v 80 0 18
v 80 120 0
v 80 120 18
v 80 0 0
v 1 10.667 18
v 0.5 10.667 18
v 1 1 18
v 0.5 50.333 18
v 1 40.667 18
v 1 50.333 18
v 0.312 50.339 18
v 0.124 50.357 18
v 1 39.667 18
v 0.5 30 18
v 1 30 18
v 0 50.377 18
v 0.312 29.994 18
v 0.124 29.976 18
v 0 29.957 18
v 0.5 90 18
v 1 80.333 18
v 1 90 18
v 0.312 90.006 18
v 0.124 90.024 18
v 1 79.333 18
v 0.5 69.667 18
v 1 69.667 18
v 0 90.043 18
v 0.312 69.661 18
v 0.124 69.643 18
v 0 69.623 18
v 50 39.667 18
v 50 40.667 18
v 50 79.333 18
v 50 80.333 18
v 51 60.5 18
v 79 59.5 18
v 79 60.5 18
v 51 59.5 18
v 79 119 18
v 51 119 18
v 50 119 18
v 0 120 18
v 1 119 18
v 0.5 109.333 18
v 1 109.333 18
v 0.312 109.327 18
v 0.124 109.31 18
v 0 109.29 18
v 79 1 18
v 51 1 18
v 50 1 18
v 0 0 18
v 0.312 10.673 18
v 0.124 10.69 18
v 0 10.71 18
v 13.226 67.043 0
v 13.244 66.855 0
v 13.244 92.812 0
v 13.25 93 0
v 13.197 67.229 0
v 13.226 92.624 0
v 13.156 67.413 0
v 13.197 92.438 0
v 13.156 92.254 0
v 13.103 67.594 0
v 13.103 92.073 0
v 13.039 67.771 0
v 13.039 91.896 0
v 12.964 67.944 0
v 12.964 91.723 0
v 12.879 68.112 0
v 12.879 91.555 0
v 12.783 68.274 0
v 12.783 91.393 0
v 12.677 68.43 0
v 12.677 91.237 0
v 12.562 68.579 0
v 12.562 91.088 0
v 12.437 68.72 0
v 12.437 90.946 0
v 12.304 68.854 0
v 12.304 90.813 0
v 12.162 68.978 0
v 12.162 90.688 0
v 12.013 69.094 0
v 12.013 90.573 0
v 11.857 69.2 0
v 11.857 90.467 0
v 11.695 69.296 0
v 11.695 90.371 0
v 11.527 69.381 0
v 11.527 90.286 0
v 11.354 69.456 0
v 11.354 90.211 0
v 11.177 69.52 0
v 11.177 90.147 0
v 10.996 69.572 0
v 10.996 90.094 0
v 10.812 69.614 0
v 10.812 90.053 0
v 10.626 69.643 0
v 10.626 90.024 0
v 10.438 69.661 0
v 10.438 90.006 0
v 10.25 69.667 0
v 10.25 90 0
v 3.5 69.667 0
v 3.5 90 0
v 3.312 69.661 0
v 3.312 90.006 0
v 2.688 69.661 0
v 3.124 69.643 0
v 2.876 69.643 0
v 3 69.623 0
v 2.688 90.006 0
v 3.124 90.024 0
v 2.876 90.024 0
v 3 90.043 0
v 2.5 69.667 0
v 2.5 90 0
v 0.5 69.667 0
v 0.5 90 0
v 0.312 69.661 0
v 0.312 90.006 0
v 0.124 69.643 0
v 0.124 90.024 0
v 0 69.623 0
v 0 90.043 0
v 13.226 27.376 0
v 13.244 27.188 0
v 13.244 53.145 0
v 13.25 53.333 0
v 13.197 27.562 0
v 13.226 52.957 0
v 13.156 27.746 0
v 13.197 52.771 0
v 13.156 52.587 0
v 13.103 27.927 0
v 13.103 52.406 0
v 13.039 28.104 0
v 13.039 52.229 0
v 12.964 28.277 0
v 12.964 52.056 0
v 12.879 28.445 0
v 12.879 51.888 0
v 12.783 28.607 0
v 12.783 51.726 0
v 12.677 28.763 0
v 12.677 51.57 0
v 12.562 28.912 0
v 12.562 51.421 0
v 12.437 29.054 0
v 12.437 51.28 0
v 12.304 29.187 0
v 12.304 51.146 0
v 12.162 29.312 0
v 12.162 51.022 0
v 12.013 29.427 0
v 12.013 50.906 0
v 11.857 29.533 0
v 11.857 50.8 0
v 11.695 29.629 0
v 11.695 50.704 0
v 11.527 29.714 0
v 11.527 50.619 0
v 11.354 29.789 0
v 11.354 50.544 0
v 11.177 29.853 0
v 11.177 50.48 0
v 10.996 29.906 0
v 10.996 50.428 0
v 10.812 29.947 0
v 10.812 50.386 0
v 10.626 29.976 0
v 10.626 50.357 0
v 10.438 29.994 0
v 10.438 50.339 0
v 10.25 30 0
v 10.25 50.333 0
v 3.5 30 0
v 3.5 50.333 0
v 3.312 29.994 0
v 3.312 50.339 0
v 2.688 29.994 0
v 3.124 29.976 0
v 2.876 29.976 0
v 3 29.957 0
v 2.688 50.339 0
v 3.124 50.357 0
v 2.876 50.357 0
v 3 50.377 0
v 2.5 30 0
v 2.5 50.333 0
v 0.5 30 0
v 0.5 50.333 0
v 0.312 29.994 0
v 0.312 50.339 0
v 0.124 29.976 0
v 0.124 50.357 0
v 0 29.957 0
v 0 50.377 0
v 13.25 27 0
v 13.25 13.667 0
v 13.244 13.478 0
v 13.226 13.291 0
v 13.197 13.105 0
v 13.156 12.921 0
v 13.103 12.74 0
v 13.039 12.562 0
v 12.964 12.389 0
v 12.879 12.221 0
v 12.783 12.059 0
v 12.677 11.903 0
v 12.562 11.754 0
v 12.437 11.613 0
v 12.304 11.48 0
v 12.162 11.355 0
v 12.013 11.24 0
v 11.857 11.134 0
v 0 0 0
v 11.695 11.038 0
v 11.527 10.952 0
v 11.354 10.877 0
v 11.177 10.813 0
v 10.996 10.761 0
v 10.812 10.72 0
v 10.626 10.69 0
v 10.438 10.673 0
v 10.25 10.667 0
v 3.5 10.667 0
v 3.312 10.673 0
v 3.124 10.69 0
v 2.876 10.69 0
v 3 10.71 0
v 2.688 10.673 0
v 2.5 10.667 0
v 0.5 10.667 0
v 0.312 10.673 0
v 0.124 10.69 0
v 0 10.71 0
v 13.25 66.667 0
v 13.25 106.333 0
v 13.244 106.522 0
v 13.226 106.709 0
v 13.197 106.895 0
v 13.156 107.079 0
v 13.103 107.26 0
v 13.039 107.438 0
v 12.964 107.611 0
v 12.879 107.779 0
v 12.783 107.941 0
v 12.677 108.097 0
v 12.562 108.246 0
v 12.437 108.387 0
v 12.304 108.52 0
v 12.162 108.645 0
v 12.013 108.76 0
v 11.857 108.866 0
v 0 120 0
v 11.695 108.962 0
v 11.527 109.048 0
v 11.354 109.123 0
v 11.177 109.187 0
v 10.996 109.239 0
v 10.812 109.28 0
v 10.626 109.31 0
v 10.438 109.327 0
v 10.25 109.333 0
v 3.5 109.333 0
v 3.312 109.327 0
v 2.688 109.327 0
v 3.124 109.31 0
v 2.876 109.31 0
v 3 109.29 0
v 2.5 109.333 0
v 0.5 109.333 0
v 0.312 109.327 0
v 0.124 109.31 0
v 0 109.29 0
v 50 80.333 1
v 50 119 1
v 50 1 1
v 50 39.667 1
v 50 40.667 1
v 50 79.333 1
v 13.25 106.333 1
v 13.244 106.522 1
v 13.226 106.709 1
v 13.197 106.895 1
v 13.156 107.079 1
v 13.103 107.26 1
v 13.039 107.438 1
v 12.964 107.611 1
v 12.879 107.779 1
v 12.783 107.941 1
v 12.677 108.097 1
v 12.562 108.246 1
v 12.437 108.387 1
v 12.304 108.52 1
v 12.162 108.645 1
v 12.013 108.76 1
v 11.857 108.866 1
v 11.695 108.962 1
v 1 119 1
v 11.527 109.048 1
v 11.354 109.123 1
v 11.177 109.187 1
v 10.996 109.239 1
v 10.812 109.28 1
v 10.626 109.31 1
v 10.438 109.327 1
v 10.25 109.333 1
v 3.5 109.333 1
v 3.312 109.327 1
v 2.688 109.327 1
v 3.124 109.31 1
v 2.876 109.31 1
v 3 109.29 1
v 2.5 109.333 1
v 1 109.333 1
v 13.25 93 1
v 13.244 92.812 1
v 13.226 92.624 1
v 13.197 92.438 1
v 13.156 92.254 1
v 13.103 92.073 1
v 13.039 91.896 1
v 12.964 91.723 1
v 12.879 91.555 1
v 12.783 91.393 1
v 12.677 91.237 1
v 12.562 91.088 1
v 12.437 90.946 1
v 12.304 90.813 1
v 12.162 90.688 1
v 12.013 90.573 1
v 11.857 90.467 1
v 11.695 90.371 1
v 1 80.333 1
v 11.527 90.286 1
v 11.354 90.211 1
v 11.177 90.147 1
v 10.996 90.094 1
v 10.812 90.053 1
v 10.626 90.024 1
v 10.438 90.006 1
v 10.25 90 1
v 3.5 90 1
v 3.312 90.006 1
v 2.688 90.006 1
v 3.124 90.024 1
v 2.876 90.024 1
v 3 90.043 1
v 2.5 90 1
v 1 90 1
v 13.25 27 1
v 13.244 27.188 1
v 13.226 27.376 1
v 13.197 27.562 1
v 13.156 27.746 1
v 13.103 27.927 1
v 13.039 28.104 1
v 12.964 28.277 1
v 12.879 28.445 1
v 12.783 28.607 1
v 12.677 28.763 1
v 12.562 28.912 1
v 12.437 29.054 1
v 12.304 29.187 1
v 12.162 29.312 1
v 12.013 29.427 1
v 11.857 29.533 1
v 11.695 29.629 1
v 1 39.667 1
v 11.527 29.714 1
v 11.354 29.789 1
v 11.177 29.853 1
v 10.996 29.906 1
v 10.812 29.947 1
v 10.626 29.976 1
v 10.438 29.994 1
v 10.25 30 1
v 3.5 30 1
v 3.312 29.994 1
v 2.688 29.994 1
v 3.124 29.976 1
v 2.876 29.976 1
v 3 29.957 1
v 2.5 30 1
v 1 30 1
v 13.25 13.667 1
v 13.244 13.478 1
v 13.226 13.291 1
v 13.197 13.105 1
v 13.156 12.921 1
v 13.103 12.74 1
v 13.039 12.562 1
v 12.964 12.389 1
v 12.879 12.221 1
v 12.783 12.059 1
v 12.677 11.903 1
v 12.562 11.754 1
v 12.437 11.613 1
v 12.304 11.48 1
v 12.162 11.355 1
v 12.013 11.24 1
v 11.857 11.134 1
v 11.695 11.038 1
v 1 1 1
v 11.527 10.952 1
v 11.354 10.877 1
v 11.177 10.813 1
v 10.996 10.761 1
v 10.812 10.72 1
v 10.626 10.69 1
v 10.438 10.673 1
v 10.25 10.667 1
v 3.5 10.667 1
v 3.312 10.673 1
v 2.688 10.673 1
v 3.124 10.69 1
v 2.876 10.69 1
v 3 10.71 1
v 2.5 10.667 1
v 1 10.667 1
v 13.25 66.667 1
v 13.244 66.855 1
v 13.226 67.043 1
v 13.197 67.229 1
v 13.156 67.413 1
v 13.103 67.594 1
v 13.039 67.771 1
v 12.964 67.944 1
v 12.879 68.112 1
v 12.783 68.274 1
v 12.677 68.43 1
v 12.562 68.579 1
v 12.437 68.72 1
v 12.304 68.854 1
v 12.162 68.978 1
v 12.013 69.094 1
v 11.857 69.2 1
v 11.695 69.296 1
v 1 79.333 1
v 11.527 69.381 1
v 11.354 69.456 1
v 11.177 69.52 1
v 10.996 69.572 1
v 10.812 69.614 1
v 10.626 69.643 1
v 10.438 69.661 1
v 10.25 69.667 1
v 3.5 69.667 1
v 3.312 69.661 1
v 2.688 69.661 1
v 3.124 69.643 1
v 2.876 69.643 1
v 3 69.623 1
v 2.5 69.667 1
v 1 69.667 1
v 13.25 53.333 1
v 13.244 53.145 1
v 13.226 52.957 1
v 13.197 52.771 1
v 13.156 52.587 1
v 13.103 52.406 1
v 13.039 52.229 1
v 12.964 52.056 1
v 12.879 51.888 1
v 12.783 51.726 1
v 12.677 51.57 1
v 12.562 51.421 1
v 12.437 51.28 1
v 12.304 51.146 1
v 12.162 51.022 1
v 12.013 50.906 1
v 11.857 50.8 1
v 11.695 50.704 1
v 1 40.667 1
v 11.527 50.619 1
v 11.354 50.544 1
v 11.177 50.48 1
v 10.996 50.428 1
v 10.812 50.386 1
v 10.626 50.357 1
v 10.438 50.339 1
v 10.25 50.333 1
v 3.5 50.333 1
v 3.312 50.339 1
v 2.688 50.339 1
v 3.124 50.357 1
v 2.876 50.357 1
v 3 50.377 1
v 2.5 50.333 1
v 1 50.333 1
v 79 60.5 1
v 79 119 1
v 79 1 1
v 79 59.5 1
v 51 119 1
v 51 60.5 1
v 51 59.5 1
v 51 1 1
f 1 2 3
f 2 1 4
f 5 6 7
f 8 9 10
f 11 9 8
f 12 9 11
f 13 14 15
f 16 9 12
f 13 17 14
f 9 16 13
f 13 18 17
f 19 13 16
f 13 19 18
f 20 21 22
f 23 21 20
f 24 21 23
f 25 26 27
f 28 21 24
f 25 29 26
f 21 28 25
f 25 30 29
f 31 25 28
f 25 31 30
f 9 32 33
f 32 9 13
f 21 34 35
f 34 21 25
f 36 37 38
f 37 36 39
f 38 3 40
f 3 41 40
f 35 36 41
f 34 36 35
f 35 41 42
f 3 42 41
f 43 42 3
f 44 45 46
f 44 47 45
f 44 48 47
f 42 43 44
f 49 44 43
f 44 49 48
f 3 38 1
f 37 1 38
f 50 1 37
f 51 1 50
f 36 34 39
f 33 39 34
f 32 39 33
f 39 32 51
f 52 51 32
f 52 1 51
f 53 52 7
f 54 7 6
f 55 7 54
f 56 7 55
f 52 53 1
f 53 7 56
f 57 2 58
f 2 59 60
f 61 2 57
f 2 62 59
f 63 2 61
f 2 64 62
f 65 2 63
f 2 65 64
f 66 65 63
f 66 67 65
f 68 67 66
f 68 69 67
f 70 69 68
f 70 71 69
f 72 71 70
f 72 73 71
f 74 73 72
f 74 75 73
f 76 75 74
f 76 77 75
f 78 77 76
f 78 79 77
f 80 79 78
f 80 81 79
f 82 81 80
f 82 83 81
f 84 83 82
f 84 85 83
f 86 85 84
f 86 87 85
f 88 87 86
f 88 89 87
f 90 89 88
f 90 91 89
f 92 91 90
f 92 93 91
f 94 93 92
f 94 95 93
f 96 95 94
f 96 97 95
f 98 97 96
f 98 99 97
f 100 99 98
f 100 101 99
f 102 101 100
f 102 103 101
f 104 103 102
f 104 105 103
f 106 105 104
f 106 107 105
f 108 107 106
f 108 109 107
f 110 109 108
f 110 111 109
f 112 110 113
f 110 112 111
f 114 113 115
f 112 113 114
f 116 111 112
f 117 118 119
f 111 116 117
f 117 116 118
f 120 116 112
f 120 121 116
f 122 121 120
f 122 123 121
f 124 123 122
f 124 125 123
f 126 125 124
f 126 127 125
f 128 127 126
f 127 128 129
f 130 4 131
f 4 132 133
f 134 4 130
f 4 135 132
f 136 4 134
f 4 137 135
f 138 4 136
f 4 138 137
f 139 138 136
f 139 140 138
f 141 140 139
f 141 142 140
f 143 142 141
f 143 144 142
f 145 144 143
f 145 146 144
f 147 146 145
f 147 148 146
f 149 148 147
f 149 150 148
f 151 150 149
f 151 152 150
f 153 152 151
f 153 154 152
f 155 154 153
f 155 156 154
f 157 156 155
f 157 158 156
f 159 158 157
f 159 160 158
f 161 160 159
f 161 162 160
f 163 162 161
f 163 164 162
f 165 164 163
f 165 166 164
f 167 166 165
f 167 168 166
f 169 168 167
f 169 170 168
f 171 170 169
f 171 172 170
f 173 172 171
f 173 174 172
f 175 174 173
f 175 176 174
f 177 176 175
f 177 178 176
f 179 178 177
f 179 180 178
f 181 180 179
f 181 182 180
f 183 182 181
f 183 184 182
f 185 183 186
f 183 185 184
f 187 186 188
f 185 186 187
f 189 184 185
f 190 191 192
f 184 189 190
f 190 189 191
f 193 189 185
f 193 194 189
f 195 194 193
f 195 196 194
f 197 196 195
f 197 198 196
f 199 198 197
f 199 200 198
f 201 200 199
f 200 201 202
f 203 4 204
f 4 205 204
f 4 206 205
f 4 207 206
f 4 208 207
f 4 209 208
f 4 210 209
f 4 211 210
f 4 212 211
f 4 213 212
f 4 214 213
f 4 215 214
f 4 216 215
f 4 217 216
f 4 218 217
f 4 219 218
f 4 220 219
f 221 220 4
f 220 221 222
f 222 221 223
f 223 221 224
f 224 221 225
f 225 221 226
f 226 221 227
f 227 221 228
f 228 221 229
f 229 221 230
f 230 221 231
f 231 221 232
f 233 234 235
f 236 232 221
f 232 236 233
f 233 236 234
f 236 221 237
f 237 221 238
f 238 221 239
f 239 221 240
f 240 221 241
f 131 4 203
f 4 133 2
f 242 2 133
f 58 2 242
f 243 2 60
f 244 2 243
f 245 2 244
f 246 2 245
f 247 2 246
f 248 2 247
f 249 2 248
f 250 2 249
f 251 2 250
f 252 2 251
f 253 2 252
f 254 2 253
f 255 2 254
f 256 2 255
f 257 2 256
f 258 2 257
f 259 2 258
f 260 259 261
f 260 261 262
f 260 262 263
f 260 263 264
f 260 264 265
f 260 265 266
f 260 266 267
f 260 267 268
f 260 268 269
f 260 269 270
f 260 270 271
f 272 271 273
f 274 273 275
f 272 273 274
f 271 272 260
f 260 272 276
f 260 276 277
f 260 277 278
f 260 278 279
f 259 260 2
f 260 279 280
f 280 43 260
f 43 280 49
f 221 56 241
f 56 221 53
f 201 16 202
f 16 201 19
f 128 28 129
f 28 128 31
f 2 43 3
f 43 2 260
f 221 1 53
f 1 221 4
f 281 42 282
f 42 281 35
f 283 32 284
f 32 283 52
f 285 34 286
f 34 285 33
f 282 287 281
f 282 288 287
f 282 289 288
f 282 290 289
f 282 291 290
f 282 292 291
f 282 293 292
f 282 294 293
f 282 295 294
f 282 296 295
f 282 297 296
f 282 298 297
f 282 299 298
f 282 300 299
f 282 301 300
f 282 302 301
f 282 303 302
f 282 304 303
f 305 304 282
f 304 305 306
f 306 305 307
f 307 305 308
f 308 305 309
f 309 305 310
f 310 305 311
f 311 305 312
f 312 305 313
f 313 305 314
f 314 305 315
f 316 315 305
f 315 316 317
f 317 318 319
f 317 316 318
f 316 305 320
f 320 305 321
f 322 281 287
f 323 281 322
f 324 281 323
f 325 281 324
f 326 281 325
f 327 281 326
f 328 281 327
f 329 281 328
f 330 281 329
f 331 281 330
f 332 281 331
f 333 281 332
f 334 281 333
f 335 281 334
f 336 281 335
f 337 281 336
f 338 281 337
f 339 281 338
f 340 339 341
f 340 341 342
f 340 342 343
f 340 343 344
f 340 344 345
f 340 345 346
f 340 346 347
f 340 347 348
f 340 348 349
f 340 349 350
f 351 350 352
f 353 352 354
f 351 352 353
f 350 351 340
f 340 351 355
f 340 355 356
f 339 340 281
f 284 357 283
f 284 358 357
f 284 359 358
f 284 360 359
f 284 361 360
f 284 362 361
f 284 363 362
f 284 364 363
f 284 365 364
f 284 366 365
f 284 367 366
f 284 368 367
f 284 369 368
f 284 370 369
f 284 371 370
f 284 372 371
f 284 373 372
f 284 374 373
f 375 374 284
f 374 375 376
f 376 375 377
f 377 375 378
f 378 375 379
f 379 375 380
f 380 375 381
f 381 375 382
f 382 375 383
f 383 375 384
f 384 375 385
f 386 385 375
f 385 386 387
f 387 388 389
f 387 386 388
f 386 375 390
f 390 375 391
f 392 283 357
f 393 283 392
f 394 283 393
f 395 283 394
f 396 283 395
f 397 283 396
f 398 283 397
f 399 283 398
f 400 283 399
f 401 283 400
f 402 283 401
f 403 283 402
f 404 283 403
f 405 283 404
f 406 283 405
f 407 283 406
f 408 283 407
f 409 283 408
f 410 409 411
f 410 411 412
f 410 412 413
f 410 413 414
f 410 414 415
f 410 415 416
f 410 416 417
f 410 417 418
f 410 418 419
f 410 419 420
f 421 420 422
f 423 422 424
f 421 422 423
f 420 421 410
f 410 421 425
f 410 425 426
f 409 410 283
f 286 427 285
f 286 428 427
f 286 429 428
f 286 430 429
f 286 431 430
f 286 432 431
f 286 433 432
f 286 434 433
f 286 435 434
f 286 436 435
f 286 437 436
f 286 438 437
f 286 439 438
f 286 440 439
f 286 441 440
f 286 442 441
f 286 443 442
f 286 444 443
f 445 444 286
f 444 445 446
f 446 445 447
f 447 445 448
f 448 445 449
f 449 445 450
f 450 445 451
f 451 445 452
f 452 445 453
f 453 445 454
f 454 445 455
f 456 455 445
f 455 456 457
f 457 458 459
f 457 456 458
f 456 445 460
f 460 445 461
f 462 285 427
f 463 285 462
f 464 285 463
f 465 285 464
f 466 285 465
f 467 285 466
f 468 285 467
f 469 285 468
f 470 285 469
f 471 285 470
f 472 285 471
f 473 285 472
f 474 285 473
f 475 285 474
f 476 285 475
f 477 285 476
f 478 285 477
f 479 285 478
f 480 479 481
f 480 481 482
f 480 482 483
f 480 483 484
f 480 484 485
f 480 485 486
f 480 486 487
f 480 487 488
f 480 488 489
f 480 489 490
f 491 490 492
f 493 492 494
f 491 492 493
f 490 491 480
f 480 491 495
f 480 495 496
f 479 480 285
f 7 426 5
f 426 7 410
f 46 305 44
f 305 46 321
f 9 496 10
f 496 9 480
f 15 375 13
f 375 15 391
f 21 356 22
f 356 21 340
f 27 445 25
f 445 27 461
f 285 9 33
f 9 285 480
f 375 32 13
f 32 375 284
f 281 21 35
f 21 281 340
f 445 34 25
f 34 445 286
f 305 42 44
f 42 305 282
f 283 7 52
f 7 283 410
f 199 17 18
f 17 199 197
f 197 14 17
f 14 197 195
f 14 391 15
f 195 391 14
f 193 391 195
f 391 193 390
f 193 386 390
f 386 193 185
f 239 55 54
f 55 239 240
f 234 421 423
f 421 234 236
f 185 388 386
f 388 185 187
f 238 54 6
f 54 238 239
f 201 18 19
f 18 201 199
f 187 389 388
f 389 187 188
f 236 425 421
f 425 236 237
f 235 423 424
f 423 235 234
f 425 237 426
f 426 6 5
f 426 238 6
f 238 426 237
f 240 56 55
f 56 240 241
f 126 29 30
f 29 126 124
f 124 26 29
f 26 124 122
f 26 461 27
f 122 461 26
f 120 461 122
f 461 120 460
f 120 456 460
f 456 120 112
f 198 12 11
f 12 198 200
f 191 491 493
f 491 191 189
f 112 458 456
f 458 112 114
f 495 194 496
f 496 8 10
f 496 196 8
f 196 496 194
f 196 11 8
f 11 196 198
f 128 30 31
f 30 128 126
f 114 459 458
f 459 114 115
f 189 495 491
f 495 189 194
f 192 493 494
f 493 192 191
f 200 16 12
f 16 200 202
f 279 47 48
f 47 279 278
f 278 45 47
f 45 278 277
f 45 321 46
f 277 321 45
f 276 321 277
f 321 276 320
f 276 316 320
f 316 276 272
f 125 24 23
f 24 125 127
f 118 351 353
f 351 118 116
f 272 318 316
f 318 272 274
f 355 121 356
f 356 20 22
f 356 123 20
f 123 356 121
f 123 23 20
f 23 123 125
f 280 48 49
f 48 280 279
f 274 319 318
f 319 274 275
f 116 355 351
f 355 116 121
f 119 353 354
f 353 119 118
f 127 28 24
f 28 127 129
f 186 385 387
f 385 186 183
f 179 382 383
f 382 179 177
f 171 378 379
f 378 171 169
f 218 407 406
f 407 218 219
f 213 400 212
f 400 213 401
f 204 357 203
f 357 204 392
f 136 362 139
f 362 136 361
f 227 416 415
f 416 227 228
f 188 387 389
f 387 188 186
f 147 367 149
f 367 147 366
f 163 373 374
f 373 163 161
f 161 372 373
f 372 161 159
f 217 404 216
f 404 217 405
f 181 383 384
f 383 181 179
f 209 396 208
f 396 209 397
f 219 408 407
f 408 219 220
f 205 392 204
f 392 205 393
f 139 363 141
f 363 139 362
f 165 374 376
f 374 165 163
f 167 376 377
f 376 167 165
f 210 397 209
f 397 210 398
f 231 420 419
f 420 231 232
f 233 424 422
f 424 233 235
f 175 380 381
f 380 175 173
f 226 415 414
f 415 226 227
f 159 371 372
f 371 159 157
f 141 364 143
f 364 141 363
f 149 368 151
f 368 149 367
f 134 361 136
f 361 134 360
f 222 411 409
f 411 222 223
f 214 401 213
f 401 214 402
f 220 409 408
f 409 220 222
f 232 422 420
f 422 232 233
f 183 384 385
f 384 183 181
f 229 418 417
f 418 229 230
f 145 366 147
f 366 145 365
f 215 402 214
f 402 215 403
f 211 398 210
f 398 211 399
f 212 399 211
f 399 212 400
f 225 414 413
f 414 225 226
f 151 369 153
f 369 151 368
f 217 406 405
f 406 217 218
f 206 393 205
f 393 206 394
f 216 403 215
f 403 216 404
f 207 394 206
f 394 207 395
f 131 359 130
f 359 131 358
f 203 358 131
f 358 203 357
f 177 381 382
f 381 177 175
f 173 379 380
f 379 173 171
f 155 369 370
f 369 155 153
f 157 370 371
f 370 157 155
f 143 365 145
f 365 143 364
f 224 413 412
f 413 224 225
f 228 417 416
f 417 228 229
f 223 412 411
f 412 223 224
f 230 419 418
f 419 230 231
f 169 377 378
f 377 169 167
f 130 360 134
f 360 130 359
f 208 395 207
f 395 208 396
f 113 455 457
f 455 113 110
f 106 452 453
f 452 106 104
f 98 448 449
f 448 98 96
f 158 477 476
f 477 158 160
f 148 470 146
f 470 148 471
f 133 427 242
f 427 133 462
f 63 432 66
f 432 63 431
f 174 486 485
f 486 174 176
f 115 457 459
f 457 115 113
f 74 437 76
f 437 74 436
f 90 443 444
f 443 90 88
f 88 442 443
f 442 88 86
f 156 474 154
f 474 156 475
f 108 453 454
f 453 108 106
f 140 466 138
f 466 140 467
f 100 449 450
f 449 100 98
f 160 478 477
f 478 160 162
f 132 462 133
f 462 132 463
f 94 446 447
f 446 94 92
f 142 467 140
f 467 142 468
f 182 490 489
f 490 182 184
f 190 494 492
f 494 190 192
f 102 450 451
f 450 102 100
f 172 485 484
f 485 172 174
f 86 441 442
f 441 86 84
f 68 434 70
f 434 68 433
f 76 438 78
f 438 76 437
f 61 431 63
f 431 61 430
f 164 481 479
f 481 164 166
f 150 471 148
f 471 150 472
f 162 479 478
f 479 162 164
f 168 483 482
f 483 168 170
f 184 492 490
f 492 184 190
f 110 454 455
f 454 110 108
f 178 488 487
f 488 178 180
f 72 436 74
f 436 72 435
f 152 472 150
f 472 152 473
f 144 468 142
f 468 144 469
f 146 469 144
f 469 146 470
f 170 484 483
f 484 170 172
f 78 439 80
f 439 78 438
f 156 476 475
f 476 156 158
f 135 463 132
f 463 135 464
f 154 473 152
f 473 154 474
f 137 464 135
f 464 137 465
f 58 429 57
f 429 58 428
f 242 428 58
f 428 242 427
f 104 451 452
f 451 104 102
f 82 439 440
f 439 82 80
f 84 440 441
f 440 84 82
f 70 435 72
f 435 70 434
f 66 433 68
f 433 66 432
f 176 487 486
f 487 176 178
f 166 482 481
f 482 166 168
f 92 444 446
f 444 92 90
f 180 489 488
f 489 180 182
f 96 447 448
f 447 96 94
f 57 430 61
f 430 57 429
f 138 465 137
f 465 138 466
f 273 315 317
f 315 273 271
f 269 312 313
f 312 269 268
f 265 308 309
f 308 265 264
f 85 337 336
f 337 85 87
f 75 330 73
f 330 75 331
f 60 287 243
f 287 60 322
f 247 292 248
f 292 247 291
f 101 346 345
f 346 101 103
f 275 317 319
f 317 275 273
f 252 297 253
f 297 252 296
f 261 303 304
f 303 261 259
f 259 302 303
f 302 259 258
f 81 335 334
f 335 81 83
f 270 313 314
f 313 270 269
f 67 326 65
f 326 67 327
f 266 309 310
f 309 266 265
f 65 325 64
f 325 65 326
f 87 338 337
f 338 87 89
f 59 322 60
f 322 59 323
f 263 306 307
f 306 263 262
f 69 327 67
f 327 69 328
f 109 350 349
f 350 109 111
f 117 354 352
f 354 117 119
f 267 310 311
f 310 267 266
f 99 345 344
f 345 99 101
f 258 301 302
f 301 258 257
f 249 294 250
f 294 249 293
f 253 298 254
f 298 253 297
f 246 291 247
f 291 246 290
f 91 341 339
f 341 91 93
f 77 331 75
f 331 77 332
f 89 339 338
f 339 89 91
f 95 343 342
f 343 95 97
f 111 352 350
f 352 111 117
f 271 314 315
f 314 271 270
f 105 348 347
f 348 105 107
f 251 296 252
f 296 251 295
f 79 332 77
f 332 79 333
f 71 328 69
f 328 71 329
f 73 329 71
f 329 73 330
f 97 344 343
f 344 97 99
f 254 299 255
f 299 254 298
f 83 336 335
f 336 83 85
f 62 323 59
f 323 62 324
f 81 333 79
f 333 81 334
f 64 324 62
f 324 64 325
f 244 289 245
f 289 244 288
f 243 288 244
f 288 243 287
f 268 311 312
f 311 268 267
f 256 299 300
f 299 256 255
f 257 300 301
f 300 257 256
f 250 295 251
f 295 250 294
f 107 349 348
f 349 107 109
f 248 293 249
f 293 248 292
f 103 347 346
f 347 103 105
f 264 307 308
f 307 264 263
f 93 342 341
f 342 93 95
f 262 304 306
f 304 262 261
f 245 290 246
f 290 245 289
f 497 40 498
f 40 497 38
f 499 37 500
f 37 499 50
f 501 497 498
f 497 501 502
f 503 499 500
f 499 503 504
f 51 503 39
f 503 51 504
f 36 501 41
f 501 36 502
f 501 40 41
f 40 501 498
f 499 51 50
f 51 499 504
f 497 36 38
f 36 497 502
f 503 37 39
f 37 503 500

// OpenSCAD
include <boardgame_insert_toolkit_lib.2.scad>;

// determines whether lids are output.
g_b_print_lid = true;

// determines whether boxes are output.
g_b_print_box = true; 

// Focus on one box
g_isolated_print_box = ""; 

// Used to visualize how all of the boxes fit together. 
g_b_visualization = false;          
        
// this is the outer wall thickness. 
//Default = 1.5mm
g_wall_thickness = 1.0;

// The tolerance value is extra space put between planes of the lid and box that fit together.
// Increase the tolerance to loosen the fit and decrease it to tighten it.
//
// Note that the tolerance is applied exclusively to the lid.
// So if the lid is too tight or too loose, change this value ( up for looser fit, down for tighter fit ) and 
// you only need to reprint the lid.
// 
// The exception is the stackable box, where the bottom of the box is the lid of the box below,
// in which case the tolerance also affects that box bottom.
//
g_tolerance = 0.15;

// This adjusts the position of the lid detents downward. 
// The larger the value, the bigger the gap between the lid and the box.
g_tolerance_detents_pos = 0.1;

aw_size_x = 80.0;
aw_size_y = 120.0;
aw_size_z = 18.0;


data =
  [
    [
      "simple box",
      [
        [ BOX_SIZE_XYZ, [aw_size_x, aw_size_y, aw_size_z] ],
        [ BOX_NO_LID_B, t],
        [
          BOX_COMPONENT,
          [
            [
              CMP_COMPARTMENT_SIZE_XYZ,
              [
                49,
                (aw_size_y - 4.0) / 3,
                aw_size_z - g_wall_thickness
              ]
            ],
            [ CMP_NUM_COMPARTMENTS_XY, [1, 3] ],
            [ POSITION_XY, [0, 0] ],
            [ CMP_CUTOUT_SIDES_4B,   [f,f,t,f]],
            //[ CMP_CUTOUT_DEPTH_PCT,  20],
            //[ CMP_CUTOUT_WIDTH_PCT,  50],
            //[ CMP_CUTOUT_HEIGHT_PCT, 100], 
            //[ CMP_SHAPE_ROTATED_B, t ],
            //[ CMP_SHAPE, FILLET ],
            //[ CMP_FILLET_RADIUS, 5.0 ],
          ]
        ],
        [
          BOX_COMPONENT,
          [
            [
              CMP_COMPARTMENT_SIZE_XYZ,
              [
                28,
                (aw_size_y - 3.0) / 2,
                aw_size_z - g_wall_thickness
              ]
            ],
            [ CMP_NUM_COMPARTMENTS_XY, [1, 2] ],
            [ POSITION_XY, [50, 0] ],
            [ CMP_CUTOUT_SIDES_4B,   [f,f,f,f]],
            //[ CMP_CUTOUT_DEPTH_PCT,  20],
            //[ CMP_CUTOUT_WIDTH_PCT,  50],
            //[ CMP_CUTOUT_HEIGHT_PCT, 100], 
            //[ CMP_SHAPE_ROTATED_B, t ],
            //[ CMP_SHAPE, FILLET ],
            //[ CMP_FILLET_RADIUS, 5.0 ],
          ]
        ],
      ]
    ]
  ];

MakeAll();
